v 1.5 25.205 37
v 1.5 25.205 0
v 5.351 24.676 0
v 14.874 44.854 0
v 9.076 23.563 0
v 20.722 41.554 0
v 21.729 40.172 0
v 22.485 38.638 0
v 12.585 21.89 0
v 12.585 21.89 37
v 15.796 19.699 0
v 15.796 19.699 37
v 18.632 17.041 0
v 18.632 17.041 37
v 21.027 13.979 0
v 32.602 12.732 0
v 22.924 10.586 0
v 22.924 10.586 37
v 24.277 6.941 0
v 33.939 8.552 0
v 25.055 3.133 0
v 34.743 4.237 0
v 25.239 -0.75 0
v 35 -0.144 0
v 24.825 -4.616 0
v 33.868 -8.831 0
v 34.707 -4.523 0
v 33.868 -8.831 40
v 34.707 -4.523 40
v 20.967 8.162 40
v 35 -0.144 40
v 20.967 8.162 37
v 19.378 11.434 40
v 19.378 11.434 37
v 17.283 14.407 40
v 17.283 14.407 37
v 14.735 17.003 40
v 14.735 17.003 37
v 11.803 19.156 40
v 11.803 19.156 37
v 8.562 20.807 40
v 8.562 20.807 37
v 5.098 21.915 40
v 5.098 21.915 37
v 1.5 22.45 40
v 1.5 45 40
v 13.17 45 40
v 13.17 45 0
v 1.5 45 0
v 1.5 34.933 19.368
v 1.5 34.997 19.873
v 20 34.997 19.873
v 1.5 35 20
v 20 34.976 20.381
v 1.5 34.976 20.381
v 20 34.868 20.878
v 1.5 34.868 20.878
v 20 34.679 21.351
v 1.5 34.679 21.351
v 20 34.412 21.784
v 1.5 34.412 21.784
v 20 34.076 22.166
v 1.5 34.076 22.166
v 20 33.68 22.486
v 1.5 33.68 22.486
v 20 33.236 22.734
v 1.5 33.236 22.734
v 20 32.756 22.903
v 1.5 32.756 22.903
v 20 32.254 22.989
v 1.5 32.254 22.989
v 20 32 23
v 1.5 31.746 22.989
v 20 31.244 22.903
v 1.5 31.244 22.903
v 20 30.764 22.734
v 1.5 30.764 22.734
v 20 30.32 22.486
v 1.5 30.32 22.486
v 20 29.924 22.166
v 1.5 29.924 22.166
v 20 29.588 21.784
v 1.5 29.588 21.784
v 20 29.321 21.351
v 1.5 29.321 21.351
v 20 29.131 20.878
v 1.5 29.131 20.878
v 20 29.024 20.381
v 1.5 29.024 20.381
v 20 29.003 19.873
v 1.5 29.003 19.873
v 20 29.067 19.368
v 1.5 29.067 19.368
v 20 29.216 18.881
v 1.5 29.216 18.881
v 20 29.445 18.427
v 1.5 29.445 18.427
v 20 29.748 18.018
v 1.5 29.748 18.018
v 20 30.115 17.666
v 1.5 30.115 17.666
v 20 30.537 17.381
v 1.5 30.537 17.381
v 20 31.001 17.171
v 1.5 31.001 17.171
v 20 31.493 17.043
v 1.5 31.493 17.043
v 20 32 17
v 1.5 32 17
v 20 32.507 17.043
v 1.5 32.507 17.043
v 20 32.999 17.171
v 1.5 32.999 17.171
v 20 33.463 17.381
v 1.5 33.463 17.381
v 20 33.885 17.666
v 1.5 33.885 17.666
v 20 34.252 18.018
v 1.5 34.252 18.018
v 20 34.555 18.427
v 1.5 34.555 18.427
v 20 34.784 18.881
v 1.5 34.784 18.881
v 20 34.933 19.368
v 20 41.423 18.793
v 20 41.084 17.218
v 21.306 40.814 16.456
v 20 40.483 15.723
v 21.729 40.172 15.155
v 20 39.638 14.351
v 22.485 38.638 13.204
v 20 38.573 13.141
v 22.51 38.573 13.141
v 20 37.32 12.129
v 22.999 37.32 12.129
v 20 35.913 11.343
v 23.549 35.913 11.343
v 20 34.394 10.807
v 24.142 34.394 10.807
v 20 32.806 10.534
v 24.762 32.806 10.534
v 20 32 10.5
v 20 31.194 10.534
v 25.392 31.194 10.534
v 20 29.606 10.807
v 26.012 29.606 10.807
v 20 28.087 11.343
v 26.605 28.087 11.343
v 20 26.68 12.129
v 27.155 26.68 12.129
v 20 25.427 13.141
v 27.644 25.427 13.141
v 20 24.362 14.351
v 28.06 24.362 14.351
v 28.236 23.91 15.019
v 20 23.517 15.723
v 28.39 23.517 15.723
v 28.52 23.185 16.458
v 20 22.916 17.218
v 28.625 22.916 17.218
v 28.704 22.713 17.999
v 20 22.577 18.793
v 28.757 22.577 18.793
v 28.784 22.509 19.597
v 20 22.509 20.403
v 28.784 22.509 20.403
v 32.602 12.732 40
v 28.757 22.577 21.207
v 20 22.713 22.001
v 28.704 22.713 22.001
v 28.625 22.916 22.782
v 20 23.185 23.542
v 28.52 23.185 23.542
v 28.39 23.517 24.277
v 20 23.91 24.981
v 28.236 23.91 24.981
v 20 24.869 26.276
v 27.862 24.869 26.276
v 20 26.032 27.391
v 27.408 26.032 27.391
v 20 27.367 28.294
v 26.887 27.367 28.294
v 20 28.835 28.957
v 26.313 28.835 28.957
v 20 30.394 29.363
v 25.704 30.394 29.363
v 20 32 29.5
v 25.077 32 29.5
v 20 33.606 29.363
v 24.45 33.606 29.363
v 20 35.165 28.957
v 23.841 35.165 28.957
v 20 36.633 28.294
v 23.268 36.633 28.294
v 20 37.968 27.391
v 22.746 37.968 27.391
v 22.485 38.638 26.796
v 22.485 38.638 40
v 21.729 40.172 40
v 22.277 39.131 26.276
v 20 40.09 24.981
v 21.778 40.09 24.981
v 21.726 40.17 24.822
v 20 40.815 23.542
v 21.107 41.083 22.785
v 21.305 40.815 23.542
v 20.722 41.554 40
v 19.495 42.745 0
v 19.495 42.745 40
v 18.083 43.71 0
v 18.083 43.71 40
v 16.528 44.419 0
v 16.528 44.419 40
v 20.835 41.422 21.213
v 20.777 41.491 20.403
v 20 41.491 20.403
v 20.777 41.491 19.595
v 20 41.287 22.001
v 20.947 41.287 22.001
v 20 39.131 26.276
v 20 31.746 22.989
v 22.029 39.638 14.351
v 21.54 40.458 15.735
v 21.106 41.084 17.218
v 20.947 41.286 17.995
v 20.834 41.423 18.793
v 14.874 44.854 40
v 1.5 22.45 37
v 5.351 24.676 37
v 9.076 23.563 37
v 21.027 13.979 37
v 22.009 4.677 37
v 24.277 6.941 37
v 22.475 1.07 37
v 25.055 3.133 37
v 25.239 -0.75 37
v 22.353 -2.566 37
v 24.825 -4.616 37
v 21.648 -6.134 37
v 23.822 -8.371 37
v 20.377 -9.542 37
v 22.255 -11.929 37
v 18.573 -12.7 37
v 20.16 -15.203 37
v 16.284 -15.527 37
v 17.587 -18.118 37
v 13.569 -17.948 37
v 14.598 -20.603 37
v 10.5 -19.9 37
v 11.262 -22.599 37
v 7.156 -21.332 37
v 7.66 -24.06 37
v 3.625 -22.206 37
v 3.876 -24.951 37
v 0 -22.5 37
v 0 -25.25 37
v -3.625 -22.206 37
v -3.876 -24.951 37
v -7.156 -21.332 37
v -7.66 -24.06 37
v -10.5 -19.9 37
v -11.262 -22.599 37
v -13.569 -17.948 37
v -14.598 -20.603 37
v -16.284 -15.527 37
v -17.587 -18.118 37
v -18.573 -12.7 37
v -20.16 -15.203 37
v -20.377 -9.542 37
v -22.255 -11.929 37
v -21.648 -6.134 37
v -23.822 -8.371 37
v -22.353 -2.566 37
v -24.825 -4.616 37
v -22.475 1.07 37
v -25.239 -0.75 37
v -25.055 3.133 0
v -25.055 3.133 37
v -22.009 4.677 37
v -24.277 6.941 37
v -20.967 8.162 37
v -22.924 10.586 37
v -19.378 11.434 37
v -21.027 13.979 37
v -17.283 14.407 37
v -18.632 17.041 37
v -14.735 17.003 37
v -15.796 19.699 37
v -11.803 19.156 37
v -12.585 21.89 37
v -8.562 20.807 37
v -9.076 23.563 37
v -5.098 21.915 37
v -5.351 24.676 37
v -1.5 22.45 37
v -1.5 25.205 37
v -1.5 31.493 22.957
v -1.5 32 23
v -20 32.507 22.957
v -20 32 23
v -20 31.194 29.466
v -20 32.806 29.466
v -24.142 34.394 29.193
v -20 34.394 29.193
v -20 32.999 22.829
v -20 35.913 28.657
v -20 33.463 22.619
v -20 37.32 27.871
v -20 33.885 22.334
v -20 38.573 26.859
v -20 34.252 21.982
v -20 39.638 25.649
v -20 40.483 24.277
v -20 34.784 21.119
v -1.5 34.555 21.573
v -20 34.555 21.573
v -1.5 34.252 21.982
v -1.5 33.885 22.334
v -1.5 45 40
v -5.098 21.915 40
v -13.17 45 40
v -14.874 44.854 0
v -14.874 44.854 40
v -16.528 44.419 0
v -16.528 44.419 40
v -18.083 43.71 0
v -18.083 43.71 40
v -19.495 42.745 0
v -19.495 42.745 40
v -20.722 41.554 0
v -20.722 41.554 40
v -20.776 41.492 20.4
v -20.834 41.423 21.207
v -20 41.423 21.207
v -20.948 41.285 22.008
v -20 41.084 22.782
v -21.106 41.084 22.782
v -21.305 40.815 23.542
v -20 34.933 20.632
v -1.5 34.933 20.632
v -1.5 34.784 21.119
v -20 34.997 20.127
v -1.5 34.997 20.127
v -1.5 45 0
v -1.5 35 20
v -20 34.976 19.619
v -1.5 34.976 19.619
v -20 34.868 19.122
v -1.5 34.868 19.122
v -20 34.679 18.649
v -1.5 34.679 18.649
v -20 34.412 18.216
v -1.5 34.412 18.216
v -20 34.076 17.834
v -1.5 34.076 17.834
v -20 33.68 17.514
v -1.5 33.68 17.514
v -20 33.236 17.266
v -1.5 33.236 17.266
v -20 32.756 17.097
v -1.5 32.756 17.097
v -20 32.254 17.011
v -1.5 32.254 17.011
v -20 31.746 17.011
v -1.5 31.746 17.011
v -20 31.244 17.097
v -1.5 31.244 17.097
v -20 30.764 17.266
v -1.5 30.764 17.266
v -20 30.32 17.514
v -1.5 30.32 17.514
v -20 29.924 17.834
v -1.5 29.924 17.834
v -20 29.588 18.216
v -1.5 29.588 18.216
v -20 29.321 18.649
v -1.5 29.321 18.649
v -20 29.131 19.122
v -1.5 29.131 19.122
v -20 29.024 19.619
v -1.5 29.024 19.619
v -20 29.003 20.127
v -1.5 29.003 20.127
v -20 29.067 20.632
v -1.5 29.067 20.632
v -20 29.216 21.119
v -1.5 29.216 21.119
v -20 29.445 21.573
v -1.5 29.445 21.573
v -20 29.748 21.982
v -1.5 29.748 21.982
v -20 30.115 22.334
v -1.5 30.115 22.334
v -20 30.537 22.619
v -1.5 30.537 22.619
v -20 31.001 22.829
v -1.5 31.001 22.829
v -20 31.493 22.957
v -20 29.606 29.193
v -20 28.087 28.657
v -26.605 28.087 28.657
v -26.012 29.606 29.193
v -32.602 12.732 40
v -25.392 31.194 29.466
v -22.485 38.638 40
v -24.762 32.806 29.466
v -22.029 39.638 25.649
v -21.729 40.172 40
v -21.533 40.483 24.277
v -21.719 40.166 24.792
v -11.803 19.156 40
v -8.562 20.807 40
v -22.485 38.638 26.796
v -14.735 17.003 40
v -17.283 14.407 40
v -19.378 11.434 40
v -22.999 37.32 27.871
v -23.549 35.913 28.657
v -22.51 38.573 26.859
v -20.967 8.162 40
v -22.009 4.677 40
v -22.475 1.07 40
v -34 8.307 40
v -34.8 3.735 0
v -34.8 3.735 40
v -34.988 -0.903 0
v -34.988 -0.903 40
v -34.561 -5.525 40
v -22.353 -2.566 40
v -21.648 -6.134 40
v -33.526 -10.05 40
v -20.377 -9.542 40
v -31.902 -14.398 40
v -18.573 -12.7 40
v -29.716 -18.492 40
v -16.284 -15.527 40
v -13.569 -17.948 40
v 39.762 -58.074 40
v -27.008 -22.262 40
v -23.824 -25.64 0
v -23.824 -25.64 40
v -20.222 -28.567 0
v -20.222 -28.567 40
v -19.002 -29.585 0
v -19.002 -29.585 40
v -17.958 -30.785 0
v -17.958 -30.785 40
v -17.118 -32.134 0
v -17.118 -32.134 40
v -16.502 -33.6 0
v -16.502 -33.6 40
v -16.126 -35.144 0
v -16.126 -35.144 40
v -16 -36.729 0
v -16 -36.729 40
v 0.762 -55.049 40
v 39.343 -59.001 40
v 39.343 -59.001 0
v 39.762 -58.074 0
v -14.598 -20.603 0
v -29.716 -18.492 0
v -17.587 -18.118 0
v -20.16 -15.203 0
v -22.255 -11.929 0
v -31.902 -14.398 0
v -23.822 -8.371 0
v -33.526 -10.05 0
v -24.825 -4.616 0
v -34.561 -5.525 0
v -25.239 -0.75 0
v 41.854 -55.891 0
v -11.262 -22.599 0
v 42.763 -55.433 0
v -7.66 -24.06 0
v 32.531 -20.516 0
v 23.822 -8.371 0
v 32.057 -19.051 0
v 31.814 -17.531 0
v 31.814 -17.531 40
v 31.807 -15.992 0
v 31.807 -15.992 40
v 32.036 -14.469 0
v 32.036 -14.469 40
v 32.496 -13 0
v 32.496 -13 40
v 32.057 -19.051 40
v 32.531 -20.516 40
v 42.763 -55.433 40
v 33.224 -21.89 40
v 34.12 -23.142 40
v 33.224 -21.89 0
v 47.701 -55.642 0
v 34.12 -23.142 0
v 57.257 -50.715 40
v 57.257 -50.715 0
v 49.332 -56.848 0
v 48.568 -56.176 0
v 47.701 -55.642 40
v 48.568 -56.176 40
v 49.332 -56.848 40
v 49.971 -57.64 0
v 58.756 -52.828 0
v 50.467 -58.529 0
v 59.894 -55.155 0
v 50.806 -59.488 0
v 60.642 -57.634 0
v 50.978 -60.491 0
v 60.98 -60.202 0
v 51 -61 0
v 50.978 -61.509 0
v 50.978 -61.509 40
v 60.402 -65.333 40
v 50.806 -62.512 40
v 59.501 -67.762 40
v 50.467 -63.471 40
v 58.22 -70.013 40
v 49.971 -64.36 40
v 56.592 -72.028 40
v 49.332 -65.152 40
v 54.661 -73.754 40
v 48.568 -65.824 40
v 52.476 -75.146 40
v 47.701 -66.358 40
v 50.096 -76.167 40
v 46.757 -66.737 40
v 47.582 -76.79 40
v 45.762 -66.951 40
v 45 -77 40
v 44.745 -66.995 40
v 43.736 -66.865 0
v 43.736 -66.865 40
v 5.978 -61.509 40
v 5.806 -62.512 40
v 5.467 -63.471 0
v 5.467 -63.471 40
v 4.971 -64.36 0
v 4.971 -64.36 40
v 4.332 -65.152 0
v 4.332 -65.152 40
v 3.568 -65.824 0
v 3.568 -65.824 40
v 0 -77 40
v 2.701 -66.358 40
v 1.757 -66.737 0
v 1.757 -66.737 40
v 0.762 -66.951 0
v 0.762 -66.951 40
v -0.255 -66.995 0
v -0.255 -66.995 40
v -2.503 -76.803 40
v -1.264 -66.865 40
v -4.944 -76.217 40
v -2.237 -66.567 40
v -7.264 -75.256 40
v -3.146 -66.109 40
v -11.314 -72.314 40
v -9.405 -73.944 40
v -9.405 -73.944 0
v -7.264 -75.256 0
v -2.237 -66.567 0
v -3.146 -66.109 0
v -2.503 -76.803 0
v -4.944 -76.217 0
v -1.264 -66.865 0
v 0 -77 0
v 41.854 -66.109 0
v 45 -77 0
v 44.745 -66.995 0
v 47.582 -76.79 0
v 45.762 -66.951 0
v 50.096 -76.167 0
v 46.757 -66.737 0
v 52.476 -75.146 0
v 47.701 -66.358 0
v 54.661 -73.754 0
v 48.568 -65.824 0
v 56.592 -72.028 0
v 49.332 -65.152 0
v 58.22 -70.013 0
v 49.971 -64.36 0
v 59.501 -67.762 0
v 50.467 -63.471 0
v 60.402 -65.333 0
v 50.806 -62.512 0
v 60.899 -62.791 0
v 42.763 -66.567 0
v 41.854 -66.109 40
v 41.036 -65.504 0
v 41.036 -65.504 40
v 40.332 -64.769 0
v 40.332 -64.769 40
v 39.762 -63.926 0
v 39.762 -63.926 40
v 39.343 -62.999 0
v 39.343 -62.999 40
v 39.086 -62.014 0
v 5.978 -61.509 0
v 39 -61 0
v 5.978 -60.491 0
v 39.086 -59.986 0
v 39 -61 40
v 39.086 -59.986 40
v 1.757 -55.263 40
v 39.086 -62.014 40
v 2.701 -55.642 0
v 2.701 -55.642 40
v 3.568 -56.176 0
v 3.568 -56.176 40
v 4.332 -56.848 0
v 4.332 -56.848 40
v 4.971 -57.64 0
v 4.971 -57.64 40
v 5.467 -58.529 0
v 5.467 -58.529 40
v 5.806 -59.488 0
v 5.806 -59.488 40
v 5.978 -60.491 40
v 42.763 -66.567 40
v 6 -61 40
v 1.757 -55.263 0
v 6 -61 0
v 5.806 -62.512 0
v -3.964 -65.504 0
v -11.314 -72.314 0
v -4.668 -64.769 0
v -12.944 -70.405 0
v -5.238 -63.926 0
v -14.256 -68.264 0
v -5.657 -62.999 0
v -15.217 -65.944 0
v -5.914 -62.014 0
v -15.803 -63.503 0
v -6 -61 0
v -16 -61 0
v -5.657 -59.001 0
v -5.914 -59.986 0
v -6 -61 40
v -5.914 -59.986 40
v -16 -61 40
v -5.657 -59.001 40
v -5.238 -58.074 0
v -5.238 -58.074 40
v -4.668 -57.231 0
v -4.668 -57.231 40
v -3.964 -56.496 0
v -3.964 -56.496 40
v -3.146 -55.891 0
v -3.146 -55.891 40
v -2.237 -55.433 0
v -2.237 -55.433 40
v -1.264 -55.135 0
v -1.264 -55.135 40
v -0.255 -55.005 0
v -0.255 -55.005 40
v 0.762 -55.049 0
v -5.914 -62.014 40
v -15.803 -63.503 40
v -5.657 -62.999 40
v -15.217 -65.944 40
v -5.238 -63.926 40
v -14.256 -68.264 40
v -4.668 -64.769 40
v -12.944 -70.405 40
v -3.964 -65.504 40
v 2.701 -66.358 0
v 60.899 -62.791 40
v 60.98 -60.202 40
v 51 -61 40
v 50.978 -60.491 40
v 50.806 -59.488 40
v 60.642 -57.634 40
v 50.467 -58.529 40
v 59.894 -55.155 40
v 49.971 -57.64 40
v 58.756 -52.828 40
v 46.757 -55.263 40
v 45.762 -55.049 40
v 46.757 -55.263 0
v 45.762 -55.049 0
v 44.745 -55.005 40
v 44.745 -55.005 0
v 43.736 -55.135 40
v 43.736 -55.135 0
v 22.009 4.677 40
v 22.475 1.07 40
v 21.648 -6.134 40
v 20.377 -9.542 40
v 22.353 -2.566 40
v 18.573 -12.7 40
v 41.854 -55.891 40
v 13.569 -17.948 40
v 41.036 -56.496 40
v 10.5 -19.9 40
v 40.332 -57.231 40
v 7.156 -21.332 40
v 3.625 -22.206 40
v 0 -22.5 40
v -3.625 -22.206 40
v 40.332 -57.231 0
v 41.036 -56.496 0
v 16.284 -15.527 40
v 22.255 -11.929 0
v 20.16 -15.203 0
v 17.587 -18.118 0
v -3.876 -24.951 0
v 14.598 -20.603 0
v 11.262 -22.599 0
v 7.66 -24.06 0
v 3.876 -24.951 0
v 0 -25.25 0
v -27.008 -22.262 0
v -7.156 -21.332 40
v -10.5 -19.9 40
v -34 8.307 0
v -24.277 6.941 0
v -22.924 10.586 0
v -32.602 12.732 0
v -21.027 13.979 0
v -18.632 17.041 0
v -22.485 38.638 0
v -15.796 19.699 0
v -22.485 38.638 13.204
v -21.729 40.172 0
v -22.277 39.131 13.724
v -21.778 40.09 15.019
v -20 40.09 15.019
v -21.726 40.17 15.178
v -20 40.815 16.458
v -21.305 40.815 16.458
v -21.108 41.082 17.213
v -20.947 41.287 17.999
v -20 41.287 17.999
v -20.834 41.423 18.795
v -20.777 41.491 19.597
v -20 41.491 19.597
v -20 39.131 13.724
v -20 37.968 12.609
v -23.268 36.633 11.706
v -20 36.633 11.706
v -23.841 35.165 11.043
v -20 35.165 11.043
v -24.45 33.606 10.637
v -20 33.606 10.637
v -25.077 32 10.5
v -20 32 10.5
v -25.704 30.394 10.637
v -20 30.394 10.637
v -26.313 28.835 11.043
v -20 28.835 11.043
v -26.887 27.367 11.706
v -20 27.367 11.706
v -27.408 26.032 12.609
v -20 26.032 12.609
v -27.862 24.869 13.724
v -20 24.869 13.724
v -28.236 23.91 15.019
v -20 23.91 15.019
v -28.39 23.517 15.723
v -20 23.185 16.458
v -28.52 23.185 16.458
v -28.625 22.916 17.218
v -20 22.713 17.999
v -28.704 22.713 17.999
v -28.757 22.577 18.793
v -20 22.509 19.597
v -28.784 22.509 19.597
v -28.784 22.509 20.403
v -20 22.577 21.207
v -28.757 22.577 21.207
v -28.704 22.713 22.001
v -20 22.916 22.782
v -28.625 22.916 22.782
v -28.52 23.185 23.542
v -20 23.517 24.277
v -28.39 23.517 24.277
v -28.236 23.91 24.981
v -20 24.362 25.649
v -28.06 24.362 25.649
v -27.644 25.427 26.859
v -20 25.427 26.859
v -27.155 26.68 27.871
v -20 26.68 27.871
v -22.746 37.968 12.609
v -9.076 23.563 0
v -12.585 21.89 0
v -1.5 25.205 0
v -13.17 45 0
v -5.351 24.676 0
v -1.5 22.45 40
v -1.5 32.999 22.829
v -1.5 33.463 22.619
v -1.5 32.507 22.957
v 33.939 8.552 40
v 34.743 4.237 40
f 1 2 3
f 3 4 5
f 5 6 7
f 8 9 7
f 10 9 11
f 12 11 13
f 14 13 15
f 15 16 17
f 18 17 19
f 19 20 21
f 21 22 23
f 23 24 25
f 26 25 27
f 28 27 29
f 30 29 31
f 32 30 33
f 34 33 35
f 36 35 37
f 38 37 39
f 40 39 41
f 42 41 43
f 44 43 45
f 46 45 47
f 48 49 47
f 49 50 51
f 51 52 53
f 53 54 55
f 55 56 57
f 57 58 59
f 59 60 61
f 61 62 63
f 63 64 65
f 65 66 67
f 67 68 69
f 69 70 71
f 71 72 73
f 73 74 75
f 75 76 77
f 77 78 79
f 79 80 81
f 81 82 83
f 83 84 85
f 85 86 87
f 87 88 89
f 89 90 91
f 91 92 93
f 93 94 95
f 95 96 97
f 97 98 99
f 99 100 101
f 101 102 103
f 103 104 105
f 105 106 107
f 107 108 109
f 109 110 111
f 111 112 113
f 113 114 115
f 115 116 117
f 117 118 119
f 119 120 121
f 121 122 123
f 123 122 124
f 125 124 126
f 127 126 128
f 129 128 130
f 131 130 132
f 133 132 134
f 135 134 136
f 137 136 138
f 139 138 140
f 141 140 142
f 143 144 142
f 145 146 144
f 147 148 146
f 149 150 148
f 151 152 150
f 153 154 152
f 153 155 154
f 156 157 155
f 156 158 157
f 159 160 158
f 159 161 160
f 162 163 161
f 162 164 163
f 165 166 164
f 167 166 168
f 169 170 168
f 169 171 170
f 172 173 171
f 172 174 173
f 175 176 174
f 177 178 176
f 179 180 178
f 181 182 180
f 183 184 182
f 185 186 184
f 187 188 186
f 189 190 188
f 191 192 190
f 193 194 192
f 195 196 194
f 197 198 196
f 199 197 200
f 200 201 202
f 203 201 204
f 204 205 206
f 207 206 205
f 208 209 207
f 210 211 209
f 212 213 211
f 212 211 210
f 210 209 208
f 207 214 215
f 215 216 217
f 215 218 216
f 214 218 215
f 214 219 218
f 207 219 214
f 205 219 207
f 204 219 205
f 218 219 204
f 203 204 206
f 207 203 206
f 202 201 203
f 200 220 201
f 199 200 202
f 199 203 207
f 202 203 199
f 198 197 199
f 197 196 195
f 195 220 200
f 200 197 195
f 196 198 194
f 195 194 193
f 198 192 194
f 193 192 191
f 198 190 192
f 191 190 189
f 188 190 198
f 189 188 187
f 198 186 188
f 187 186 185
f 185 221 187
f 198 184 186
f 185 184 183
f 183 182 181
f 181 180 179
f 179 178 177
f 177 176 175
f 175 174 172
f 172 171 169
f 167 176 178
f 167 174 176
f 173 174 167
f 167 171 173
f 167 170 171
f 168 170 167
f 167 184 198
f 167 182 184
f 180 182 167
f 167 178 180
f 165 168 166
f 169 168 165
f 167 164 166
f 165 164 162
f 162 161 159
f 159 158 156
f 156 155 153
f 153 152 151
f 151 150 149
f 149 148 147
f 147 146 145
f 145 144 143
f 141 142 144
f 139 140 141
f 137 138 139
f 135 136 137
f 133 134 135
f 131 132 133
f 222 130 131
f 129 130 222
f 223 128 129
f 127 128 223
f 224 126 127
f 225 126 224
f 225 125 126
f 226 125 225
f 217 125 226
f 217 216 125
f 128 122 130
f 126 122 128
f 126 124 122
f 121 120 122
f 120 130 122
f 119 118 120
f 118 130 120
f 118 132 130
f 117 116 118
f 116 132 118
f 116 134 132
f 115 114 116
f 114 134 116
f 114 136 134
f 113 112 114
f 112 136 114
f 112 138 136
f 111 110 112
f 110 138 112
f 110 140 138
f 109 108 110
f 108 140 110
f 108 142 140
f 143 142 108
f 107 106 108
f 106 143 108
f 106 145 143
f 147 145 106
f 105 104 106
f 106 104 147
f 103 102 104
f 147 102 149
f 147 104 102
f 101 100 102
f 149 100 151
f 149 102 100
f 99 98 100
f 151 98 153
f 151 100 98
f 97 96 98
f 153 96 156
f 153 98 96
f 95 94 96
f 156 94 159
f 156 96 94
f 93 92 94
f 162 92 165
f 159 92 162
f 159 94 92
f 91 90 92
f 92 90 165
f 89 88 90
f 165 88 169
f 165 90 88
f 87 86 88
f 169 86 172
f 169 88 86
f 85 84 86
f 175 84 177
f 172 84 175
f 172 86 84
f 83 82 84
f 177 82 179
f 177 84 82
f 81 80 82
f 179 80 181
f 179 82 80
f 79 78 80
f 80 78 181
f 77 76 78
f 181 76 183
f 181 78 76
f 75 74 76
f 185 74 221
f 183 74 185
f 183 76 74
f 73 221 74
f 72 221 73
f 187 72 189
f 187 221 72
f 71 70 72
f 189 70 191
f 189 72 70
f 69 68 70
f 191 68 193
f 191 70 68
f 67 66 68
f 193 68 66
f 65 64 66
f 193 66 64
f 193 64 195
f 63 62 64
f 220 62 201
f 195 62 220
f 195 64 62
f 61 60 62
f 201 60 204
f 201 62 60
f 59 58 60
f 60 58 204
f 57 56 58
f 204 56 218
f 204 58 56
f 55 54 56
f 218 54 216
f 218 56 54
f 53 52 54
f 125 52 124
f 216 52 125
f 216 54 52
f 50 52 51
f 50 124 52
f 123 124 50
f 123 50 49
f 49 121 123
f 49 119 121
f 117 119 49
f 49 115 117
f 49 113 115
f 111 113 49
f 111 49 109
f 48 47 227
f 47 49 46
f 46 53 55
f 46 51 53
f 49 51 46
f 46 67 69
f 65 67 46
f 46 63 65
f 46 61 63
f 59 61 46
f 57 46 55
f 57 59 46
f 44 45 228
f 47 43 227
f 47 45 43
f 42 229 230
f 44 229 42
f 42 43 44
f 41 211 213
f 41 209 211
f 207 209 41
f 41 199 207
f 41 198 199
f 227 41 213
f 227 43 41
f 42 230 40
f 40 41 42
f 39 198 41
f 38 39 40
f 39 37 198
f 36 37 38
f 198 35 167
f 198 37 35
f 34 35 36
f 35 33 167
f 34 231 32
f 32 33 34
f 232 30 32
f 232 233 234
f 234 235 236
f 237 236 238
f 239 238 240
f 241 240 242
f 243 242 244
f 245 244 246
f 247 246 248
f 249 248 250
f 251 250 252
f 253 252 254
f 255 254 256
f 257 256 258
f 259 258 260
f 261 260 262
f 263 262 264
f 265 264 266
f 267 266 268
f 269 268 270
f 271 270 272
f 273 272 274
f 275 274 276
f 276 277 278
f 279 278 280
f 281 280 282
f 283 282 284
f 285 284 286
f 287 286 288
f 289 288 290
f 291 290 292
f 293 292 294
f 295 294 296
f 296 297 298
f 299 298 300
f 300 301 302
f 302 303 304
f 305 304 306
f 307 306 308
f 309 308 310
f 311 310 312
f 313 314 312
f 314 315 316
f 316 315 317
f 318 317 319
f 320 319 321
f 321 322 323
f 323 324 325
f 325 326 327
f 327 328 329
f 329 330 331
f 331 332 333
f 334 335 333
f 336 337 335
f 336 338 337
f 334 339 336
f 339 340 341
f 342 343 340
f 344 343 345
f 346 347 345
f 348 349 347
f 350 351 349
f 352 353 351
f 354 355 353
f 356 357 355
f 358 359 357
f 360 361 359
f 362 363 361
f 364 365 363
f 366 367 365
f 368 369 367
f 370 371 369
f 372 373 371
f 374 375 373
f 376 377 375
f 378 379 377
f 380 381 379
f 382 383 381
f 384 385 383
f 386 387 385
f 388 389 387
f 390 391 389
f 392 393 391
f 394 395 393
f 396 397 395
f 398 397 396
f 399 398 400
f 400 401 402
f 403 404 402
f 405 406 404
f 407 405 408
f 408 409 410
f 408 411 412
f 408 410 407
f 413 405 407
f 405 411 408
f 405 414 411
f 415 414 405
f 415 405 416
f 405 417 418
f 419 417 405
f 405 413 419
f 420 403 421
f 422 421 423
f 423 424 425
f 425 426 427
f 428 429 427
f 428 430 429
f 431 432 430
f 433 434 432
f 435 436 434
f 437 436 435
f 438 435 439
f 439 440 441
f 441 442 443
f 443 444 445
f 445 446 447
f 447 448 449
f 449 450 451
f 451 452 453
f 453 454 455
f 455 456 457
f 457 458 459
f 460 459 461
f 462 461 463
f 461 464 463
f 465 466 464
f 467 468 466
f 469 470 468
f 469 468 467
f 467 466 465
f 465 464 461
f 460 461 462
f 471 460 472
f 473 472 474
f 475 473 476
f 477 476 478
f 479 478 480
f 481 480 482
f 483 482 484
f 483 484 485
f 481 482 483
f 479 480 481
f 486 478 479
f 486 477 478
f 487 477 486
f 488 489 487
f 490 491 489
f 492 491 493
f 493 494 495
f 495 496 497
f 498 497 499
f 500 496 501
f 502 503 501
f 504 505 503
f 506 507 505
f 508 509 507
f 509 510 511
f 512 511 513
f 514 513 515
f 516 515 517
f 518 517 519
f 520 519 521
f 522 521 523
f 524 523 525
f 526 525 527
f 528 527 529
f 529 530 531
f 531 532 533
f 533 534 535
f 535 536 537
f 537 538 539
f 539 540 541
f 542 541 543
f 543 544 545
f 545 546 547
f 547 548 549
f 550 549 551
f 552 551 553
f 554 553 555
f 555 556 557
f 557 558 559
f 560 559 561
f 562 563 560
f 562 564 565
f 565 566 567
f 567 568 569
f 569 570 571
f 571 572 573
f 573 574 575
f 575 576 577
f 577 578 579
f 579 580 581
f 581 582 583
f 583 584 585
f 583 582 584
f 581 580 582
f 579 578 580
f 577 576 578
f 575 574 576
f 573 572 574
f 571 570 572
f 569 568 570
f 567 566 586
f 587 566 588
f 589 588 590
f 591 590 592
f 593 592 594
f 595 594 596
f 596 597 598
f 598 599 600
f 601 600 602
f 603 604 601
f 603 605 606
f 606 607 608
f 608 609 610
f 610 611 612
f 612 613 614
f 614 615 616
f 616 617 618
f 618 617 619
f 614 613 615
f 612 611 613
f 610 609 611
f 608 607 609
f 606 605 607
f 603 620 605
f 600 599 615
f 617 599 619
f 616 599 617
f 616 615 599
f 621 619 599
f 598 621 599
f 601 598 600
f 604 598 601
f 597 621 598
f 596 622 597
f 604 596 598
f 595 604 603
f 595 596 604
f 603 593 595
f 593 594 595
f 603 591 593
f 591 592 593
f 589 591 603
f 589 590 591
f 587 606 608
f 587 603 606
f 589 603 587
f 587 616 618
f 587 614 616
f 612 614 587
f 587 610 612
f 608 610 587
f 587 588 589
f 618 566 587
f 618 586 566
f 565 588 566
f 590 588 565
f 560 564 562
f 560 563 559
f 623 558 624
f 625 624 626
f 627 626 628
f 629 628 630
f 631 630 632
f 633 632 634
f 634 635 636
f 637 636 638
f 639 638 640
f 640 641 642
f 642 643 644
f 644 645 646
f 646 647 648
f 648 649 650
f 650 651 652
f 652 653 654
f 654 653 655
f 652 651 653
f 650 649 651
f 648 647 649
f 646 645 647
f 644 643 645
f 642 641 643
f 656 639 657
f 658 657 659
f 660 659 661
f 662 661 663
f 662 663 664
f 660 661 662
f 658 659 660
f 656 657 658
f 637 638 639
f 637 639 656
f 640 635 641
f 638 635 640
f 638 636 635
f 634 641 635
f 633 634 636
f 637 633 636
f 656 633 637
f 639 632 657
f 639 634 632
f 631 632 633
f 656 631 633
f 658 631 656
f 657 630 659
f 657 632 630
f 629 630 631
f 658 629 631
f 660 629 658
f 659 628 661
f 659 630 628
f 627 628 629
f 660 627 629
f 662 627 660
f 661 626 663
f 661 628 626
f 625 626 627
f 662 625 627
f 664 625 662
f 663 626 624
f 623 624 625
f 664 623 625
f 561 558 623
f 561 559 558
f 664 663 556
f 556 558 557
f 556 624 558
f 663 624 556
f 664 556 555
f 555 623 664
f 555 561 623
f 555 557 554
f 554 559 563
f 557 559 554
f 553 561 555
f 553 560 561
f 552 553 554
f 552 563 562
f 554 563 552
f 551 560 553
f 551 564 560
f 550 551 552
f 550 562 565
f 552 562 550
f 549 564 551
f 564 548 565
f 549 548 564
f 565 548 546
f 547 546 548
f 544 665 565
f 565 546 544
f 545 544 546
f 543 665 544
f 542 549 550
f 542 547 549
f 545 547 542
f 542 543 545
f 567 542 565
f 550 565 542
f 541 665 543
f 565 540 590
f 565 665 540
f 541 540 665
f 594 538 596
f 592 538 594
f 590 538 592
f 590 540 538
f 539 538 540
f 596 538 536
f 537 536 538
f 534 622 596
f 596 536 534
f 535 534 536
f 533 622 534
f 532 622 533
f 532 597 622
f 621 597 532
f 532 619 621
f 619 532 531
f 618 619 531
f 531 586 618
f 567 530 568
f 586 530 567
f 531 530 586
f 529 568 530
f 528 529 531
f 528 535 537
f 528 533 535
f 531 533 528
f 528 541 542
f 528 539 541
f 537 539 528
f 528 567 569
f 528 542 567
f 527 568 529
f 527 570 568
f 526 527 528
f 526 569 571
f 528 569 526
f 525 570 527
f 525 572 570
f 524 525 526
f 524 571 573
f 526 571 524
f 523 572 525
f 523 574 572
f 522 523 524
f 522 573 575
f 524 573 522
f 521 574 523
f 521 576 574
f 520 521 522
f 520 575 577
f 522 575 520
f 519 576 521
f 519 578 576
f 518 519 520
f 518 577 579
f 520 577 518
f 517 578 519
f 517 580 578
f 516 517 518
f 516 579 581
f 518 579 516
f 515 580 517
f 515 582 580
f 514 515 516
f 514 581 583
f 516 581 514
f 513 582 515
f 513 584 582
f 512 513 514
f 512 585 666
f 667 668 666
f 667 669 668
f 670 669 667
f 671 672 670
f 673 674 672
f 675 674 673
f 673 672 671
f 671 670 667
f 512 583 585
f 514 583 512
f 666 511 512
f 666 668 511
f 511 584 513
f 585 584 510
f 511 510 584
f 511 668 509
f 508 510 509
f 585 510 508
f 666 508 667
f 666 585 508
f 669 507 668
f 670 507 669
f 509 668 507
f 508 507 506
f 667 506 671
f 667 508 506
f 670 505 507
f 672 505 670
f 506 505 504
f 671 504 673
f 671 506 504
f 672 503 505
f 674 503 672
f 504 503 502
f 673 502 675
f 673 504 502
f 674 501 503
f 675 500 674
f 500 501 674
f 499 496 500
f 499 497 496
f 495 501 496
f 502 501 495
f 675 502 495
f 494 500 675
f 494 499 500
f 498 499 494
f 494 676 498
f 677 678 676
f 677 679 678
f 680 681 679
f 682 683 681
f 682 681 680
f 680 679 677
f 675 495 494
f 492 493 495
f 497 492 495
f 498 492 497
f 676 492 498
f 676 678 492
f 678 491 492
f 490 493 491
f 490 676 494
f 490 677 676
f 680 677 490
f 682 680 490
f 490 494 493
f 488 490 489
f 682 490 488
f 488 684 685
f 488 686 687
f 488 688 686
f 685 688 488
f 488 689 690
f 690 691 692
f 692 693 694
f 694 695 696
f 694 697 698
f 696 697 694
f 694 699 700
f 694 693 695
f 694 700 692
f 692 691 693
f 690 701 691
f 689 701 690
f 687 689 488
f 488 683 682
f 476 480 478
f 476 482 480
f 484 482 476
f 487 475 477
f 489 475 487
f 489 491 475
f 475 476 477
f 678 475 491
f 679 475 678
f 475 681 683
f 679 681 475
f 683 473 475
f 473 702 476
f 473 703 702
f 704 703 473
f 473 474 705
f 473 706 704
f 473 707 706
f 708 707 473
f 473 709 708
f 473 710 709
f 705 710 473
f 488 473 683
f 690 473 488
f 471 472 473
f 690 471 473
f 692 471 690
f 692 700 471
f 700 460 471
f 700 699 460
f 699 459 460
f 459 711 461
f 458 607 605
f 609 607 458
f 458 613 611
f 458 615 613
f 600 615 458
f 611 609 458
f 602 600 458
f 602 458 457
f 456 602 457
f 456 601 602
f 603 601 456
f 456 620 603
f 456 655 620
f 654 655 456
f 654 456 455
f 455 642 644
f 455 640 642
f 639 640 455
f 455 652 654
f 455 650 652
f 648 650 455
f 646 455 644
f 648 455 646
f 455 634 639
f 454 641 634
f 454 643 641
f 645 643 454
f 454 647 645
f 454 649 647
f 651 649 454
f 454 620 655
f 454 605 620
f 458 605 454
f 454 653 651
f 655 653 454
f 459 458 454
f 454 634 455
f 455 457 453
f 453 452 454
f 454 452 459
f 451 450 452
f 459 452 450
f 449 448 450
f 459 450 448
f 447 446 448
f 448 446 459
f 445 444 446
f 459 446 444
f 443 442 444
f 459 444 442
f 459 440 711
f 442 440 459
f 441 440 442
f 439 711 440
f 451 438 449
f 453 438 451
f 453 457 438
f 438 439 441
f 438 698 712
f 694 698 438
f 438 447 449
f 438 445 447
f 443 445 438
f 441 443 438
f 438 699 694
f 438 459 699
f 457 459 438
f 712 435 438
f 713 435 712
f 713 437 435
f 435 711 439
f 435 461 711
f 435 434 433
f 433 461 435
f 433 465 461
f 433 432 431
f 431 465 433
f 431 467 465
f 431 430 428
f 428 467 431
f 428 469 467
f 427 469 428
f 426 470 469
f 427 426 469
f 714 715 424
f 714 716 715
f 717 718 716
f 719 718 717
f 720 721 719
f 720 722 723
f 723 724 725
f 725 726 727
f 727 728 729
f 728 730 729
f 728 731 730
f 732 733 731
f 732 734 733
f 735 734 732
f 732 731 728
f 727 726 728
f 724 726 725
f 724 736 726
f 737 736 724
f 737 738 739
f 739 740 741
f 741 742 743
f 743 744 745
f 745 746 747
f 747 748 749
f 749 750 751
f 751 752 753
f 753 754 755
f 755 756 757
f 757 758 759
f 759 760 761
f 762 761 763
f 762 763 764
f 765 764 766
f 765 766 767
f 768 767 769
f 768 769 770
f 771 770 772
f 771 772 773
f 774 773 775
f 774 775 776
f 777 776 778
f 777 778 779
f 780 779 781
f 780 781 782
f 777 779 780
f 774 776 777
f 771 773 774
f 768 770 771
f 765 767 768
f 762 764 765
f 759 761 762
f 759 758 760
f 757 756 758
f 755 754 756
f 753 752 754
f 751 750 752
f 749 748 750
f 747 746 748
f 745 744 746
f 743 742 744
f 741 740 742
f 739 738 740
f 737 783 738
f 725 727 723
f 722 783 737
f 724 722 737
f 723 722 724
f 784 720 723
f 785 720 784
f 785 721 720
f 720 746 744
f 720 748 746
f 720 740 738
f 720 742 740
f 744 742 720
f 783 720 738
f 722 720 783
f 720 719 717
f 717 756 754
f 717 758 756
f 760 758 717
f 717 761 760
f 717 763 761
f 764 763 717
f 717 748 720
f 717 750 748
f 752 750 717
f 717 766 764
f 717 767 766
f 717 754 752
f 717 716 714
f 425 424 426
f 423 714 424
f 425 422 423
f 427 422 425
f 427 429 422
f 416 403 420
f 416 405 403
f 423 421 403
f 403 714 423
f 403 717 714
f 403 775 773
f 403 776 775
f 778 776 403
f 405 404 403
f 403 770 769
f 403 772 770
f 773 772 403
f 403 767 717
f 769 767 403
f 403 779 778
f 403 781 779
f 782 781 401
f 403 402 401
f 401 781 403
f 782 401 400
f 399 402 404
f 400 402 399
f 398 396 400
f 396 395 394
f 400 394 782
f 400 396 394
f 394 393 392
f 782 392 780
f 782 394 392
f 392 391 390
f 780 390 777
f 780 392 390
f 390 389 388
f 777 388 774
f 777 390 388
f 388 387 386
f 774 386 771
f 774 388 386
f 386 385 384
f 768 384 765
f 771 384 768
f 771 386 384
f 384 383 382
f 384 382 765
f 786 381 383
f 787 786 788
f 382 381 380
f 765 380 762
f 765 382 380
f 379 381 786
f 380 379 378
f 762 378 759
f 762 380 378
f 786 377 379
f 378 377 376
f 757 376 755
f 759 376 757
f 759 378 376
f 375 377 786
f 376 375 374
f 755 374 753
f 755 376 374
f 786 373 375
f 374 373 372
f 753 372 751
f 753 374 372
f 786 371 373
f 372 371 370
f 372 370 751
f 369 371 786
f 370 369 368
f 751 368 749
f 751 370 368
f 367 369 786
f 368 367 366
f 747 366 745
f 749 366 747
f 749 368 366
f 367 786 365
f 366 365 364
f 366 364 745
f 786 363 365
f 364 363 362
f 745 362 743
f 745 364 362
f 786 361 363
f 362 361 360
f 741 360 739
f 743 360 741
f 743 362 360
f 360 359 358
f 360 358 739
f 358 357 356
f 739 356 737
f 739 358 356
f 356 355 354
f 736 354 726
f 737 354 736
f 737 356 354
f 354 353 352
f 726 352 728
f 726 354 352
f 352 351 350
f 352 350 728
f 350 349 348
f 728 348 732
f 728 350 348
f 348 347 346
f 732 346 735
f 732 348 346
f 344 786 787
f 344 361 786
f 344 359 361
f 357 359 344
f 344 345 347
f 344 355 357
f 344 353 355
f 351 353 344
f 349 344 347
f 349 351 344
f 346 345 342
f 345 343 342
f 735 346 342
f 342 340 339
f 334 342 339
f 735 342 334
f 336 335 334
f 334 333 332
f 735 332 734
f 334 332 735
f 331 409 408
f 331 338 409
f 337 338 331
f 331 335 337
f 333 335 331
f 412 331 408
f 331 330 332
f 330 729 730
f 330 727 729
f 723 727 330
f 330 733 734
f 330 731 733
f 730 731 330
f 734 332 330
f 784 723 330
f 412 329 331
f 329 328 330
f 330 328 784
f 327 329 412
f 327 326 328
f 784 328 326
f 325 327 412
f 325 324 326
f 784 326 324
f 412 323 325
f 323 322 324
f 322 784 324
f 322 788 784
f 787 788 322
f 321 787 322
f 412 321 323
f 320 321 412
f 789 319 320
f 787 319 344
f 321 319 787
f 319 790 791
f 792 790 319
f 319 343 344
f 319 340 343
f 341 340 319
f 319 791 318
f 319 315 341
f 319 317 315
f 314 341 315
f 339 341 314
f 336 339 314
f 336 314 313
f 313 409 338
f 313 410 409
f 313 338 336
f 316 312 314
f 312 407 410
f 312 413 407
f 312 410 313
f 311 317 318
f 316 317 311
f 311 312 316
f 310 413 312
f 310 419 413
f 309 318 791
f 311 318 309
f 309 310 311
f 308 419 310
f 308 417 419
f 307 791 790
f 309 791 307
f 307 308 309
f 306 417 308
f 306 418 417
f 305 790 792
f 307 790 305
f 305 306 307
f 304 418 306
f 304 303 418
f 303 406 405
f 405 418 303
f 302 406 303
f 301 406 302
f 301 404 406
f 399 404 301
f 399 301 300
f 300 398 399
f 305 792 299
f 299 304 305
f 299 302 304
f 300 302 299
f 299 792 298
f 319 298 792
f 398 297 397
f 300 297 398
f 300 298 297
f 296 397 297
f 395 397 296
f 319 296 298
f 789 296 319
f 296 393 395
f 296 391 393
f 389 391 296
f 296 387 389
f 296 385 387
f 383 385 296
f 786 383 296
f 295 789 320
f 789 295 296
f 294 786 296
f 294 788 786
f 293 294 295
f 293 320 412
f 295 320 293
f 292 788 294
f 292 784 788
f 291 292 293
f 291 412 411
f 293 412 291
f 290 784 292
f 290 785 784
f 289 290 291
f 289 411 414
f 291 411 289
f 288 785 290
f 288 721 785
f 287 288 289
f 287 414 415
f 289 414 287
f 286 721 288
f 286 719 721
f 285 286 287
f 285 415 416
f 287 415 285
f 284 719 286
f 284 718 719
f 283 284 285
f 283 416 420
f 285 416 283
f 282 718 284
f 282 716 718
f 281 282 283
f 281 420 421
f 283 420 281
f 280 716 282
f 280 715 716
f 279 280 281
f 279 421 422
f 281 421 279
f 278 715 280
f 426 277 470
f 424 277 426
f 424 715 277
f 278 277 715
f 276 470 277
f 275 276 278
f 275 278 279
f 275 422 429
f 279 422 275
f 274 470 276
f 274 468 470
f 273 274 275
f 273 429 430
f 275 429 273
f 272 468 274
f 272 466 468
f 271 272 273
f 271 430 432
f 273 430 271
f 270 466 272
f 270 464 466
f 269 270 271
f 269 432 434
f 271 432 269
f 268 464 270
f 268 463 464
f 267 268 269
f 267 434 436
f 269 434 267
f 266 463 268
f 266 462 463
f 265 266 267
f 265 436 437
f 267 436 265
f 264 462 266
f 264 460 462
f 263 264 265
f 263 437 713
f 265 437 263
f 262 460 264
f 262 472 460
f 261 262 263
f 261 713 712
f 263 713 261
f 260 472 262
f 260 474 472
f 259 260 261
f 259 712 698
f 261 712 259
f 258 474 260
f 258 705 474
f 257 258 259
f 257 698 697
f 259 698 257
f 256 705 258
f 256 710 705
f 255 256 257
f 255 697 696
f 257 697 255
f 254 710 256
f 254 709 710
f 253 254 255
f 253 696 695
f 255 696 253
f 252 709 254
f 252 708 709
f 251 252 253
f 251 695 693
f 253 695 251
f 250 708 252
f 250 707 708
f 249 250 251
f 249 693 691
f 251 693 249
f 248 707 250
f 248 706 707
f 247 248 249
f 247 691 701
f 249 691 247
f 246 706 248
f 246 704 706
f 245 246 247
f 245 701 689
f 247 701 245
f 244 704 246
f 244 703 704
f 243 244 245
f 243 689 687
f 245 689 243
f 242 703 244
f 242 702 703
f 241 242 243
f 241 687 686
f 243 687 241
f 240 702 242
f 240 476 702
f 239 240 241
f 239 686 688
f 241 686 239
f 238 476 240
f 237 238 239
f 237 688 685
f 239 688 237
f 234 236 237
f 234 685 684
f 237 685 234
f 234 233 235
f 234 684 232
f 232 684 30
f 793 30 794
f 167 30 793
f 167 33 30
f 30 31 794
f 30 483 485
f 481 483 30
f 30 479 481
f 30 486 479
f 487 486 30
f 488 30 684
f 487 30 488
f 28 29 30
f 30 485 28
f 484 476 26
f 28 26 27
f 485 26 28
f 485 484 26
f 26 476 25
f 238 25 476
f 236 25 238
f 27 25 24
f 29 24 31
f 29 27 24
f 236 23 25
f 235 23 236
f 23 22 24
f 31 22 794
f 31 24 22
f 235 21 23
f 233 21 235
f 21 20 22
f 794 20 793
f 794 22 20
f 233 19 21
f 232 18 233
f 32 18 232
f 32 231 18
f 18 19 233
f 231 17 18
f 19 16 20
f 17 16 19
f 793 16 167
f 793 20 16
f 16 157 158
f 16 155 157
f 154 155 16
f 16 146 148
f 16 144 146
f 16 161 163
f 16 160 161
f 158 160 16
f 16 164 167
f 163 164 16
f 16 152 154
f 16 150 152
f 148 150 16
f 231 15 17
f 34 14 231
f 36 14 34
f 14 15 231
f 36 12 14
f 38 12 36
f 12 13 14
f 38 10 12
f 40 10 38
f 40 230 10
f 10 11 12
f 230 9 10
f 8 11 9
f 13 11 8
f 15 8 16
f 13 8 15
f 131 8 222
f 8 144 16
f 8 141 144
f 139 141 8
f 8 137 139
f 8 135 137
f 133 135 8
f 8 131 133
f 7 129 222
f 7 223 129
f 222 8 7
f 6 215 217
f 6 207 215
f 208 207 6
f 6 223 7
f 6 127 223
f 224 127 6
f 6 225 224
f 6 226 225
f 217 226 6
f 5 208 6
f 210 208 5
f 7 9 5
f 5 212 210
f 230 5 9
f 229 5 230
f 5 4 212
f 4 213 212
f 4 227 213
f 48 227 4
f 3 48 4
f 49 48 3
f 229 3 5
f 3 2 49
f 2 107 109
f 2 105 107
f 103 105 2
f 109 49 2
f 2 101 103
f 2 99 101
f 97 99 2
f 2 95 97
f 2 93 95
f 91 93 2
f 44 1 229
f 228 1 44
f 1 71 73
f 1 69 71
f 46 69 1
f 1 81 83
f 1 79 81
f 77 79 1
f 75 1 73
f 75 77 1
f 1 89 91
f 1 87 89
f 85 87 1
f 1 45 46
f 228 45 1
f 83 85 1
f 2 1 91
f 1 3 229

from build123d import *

# Parameters (mm, degrees)
SKETCH1_R           = 6
BOSS_EXTRUDE3_DEPTH = 40
FILLET2_R           = 10
SKETCH5_R           = 9.5
CUT_EXTRUDE1_DEPTH  = 10
SKETCH6_R           = 3
CUT_EXTRUDE2_DEPTH  = 21.5
BOSS_EXTRUDE4_START = -3
BOSS_EXTRUDE4_DEPTH = 3


with BuildPart() as part:
    # Sketch1 → Boss-Extrude3 (new body)
    with BuildSketch(Plane.XY):
        with BuildLine():
            Line((-16, -31.128764833), (-16, -61))
            ThreePointArc((-16, -61), (-11.313708499, -72.313708499), (0, -77))
            Line((0, -77), (45, -77))
            ThreePointArc((45, -77), (59.500924593, -67.761892188), (57.25671109, -50.715398245))
            Line((57.25671109, -50.715398245), (29.928255065, -18.146612597))
            ThreePointArc((29.928255065, -18.146612597), (34.869538701, -3.019150675), (32.601897088, 12.732490183))
            Line((32.601897088, 12.732490183), (20, 45))
            Line((20, 45), (1.5, 45))
            Line((1.5, 45), (1.5, 25.205406166))
            ThreePointArc((1.5, 25.205406166), (0, -25.25), (-1.5, 25.205406166))
            Line((-1.5, 25.205406166), (-1.5, 45))
            Line((-1.5, 45), (-20, 45))
            Line((-20, 45), (-32.601897088, 12.732490183))
            ThreePointArc((-32.601897088, 12.732490183), (-32.733599298, -12.389974858), (-16, -31.128764833))
        make_face()
        with Locations((0, -61)):
            Circle(SKETCH1_R, mode=Mode.SUBTRACT)
        with Locations((45, -61)):
            Circle(SKETCH1_R, mode=Mode.SUBTRACT)
    extrude(amount=BOSS_EXTRUDE3_DEPTH)

    # Fillet2
    fillet2_edges = [part.edges().sort_by_distance(p)[0] for p in [
        (-20, 45, 20),
        (20, 45, 20),
        (29.928255065, -18.146612597, 20),
        (-16, -31.128764833, 20),
    ]]
    fillet(fillet2_edges, radius=FILLET2_R)

    # Sketch5 → Cut-Extrude1 (cut)
    with BuildSketch(Plane(origin=(-20, 0, 0), x_dir=(0, 0, -1), z_dir=(1, 0, 0))):
        with Locations((-20, 32)):
            Circle(SKETCH5_R)
    cut_extrude1 = extrude(amount=-CUT_EXTRUDE1_DEPTH, mode=Mode.SUBTRACT)

    # Sketch6 → Cut-Extrude2 (cut)
    with BuildSketch(Plane.ZY.offset(20)):
        with Locations((20, 32)):
            Circle(SKETCH6_R)
    cut_extrude2 = extrude(amount=-CUT_EXTRUDE2_DEPTH, mode=Mode.SUBTRACT)

    # Mirror3: Cut-Extrude1, Cut-Extrude2 across plane
    add(cut_extrude1.mirror(Plane(origin=(0, 0, 0), x_dir=(0, 0, 1), z_dir=(1, 0, 0))), mode=Mode.SUBTRACT)
    add(cut_extrude2.mirror(Plane(origin=(0, 0, 0), x_dir=(0, 0, 1), z_dir=(1, 0, 0))), mode=Mode.SUBTRACT)

    # Sketch7 → Boss-Extrude4 (add)
    with BuildSketch(Plane.XY.offset(40).offset(BOSS_EXTRUDE4_START)):
        with BuildLine():
            ThreePointArc((22.5, 0), (-15.370426149, -16.431676725), (-1.5, 22.449944321))
            Line((-1.5, 22.449944321), (-1.5, 25.205406166))
            ThreePointArc((-1.5, 25.205406166), (-17.315996939, -18.377125727), (25.25, 0))
            ThreePointArc((25.25, 0), (18.377125727, 17.315996939), (1.5, 25.205406166))
            Line((1.5, 25.205406166), (1.5, 22.449944321))
            ThreePointArc((1.5, 22.449944321), (16.431676725, 15.370426149), (22.5, 0))
        make_face()
    extrude(amount=BOSS_EXTRUDE4_DEPTH)


solid = part.part
